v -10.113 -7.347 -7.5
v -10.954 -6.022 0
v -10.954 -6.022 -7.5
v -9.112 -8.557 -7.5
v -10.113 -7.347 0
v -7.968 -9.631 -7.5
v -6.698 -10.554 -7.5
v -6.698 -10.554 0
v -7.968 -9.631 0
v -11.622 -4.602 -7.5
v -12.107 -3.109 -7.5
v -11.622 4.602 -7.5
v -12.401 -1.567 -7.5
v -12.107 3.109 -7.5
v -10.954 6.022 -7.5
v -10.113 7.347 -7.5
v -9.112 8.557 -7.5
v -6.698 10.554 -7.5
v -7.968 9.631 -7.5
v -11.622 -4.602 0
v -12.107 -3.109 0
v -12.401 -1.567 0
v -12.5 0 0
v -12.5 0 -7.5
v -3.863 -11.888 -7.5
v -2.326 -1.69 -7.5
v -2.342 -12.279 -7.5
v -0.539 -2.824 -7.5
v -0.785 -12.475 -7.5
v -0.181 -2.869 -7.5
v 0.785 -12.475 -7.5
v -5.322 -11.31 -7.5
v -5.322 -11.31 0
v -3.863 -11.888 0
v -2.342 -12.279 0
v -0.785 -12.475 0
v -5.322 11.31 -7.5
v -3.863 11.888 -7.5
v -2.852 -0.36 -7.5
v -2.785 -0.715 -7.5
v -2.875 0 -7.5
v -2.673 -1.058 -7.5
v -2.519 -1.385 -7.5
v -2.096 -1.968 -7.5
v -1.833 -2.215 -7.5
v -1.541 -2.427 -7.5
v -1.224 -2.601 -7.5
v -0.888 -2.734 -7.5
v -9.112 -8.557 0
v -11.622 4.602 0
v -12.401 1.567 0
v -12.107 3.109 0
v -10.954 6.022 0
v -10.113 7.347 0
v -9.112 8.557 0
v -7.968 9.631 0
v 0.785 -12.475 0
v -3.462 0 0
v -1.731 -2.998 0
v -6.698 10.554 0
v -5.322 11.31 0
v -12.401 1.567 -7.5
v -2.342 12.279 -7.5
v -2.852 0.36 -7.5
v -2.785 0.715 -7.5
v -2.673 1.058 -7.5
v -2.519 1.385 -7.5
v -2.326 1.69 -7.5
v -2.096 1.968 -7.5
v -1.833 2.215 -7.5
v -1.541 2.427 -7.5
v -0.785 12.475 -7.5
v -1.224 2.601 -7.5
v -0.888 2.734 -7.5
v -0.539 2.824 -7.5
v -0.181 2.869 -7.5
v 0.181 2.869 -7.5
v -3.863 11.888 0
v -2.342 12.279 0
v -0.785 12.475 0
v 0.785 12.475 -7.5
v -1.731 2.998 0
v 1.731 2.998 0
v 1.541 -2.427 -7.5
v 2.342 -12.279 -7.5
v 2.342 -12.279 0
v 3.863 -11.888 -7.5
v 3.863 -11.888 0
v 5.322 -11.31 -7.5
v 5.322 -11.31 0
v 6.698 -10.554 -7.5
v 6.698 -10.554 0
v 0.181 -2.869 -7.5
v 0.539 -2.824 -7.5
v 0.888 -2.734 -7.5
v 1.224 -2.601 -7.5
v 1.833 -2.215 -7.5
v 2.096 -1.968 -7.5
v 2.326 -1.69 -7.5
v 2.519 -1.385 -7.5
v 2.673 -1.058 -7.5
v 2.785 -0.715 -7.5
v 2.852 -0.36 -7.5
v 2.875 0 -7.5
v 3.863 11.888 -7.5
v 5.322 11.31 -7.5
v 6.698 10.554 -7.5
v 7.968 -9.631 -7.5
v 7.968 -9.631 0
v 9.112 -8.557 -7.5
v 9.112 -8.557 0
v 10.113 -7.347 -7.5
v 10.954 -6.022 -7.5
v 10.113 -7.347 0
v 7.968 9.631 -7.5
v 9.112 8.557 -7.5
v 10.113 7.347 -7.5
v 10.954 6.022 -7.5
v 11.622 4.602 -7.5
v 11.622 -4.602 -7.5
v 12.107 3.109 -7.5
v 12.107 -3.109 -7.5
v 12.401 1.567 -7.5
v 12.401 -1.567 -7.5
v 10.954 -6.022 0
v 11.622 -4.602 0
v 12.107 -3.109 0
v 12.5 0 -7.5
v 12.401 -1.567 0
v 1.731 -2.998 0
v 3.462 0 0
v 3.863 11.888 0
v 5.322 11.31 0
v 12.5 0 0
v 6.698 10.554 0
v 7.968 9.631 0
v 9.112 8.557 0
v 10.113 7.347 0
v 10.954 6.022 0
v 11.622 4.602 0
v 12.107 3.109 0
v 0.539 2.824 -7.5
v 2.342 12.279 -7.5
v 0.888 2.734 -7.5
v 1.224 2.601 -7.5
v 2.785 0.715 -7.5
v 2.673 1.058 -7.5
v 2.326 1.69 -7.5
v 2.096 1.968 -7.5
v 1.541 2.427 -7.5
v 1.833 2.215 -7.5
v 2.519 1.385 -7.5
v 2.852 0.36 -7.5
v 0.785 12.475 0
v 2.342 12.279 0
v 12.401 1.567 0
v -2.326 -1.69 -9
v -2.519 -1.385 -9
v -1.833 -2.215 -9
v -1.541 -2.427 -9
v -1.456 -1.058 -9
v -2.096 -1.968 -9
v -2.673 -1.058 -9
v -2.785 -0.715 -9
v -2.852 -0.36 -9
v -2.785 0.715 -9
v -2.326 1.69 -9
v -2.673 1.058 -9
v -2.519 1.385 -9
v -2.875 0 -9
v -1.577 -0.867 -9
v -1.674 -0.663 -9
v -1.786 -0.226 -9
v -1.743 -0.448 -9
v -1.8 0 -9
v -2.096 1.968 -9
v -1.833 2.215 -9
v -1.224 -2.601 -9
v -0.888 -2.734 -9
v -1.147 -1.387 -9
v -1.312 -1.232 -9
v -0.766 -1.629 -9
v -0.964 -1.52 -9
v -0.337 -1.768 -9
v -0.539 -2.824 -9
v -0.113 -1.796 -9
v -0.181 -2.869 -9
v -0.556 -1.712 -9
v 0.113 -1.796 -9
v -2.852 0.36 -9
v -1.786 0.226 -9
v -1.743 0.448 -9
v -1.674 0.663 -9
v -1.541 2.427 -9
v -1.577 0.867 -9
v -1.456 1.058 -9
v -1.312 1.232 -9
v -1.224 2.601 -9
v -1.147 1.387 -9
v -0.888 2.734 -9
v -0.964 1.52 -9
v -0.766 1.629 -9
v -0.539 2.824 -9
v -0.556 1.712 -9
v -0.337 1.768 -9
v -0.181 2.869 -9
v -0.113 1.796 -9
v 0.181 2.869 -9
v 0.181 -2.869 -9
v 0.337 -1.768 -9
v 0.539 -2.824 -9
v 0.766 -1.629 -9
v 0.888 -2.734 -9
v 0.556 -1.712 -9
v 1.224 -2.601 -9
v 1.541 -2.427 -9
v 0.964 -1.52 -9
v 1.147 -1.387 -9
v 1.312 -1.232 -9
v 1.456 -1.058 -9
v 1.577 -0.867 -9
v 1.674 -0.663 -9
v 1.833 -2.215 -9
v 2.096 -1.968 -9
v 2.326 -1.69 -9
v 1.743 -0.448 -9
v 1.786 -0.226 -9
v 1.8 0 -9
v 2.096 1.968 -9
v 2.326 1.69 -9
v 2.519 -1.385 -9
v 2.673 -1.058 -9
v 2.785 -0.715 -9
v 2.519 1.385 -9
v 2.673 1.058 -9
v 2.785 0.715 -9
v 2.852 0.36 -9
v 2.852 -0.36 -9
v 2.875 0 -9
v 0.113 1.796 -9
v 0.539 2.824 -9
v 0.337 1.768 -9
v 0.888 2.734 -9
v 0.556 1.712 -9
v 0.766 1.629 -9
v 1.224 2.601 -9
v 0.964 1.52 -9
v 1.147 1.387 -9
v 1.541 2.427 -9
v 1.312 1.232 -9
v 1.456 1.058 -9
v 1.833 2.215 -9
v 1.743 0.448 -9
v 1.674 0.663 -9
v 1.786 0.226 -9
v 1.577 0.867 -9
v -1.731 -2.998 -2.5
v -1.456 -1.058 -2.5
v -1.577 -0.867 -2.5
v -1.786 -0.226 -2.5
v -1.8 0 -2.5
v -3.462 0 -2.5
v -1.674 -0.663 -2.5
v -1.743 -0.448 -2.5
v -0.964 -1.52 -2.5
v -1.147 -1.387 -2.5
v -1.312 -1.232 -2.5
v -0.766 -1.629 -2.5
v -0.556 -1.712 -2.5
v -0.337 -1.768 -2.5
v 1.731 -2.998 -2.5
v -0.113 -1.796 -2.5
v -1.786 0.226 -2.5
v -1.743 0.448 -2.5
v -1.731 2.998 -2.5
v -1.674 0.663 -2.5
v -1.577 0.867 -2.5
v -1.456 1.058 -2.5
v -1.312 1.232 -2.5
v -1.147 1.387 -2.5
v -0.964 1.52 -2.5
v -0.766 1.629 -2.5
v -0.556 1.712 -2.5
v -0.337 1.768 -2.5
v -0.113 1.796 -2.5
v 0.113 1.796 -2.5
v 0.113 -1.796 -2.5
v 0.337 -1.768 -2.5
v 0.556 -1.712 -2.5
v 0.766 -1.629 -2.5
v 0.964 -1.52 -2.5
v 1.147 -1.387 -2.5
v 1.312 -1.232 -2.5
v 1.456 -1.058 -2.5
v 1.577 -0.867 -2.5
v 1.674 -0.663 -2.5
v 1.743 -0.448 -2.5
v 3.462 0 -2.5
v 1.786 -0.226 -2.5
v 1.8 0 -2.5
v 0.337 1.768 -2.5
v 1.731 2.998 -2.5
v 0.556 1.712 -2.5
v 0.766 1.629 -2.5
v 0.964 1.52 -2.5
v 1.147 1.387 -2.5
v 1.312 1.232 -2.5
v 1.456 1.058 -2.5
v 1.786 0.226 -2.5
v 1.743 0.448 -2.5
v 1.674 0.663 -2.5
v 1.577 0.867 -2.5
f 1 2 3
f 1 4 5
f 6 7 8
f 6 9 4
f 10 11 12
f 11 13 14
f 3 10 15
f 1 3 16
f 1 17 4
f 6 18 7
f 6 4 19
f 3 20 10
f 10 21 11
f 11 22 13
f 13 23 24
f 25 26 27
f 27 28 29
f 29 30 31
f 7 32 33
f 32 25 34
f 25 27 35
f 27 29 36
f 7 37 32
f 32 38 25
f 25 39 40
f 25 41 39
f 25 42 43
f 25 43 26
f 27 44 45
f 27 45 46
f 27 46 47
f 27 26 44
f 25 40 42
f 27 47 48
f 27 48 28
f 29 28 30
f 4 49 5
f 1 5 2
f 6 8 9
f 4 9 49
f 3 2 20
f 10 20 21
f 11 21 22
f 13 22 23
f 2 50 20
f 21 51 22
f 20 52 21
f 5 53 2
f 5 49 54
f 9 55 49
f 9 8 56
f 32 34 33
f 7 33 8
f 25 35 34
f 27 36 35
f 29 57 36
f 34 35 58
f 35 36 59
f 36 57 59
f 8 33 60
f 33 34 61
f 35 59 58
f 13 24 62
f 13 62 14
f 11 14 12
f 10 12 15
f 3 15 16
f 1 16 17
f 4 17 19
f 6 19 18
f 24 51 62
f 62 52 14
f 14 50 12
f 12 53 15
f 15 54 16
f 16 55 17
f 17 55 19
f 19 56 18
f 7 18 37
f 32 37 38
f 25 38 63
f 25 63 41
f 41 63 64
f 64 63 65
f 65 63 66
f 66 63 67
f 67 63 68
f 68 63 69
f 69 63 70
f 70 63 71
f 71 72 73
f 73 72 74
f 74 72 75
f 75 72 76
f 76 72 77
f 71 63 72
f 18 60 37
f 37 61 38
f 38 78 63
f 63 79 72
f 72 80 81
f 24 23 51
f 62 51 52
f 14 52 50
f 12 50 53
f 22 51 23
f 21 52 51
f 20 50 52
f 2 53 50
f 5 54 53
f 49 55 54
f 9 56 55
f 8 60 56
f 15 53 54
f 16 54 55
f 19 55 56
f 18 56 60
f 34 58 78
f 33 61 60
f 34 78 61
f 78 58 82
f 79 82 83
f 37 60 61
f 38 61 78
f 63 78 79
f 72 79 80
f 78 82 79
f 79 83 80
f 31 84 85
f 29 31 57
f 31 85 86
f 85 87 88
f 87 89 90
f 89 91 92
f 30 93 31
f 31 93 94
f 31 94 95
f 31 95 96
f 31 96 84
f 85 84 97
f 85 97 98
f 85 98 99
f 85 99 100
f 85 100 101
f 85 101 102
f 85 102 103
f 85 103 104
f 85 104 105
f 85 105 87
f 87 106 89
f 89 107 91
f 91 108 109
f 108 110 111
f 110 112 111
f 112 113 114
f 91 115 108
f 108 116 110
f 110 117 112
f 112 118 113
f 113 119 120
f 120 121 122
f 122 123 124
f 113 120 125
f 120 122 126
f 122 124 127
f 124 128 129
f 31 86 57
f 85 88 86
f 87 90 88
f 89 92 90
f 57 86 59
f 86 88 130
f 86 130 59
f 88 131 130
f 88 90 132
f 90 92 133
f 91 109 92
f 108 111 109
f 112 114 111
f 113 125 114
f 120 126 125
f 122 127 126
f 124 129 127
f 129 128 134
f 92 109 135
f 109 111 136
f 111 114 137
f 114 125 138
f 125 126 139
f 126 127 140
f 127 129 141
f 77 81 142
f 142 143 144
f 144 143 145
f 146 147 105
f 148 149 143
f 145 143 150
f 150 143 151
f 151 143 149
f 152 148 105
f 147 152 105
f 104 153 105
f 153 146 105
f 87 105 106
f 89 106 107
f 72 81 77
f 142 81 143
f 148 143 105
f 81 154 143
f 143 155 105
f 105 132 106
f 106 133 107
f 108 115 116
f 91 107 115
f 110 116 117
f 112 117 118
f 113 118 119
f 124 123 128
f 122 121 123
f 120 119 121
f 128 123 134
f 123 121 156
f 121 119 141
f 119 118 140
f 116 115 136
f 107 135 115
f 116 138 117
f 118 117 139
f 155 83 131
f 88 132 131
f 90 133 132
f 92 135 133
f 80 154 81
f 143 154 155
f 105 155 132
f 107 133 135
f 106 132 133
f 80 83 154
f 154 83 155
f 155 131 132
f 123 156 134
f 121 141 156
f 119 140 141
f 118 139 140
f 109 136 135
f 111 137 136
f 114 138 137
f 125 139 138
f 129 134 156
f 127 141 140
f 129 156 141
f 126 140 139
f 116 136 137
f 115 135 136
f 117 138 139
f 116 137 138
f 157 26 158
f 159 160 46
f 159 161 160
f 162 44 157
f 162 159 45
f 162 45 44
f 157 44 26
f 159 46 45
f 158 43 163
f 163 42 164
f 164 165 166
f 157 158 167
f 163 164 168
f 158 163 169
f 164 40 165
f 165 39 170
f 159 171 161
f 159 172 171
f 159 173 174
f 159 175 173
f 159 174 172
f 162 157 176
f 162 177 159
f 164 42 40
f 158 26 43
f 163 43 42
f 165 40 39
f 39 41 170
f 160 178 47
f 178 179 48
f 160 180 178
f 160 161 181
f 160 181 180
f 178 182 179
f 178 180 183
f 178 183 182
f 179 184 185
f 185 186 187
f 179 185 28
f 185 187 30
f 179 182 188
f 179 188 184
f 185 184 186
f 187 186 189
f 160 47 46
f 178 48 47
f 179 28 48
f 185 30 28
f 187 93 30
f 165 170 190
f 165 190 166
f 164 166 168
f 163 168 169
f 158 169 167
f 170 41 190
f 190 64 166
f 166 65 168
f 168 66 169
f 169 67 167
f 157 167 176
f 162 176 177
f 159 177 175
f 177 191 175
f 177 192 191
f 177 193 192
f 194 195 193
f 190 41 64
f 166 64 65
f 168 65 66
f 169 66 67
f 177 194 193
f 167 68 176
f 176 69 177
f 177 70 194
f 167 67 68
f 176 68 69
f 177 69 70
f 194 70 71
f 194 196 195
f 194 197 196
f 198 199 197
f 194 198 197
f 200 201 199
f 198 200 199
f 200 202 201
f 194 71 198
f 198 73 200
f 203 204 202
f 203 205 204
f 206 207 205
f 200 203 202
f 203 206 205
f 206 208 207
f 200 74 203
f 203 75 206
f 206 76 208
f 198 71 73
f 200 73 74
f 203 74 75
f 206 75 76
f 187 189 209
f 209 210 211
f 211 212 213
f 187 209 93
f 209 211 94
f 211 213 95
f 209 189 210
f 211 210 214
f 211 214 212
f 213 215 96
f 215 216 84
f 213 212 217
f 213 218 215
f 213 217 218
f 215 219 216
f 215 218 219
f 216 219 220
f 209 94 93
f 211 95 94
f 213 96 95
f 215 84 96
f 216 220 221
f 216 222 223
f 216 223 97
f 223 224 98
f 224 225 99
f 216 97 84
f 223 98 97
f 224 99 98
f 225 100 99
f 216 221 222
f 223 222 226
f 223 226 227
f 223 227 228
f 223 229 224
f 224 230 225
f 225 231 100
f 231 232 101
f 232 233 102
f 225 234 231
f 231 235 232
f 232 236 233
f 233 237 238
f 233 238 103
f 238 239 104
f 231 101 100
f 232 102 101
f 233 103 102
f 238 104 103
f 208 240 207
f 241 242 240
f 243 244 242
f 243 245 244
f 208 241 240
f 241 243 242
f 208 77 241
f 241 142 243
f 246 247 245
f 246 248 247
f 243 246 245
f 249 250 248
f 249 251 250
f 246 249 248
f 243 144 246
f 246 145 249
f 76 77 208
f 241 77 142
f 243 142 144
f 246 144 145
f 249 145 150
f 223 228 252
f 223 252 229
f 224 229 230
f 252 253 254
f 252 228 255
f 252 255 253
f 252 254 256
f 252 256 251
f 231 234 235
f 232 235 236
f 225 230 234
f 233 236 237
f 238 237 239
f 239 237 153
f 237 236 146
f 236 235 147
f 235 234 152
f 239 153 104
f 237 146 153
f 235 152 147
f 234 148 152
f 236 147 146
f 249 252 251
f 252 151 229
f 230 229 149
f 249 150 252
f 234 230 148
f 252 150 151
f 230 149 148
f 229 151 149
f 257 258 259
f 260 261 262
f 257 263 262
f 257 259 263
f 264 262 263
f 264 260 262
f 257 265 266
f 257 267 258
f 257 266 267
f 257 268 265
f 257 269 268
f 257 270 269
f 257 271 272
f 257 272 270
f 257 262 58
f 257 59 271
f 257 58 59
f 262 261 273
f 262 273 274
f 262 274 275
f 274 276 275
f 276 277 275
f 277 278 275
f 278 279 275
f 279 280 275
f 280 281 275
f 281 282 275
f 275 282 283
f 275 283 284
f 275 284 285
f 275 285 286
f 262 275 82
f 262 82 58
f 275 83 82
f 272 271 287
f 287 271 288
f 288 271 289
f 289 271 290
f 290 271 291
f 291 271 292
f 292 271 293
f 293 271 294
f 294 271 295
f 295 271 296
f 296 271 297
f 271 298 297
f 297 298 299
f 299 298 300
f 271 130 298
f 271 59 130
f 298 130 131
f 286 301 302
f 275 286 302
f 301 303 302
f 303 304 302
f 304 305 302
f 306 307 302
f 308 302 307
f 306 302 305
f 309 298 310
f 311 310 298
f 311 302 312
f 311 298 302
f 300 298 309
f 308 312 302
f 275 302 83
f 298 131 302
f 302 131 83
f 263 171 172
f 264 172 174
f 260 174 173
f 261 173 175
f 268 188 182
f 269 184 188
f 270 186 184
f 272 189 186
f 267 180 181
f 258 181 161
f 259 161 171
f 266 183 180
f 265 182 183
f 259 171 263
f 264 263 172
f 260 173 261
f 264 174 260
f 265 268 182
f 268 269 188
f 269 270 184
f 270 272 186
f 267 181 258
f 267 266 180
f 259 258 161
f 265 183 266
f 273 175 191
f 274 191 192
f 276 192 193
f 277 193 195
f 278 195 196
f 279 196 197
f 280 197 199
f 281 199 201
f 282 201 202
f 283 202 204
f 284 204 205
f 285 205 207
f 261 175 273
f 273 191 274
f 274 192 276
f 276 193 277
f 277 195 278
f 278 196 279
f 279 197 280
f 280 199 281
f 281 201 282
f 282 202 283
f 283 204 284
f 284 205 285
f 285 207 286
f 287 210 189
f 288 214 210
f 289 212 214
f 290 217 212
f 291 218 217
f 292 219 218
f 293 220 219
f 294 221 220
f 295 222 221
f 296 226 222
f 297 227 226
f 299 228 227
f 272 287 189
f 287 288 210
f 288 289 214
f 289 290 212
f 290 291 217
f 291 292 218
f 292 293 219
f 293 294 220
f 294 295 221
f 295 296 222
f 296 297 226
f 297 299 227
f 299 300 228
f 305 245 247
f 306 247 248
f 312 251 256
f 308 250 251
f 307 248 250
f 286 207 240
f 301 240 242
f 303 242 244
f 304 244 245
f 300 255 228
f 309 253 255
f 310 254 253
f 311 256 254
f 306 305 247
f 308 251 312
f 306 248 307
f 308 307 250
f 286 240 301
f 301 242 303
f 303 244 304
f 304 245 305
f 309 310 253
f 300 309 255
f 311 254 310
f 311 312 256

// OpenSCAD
$fn = 50;


difference() {
	union() {
		translate(v = [0, 0, -7.5000000000]) {
			cylinder(h = 7.5000000000, r = 12.5000000000);
		}
		#translate(v = [0, 0, -9.0000000000]) {
			cylinder(h = 9, r = 2.8750000000);
		}
	}
	union() {
		translate(v = [0, 0, 0]) {
			rotate(a = [0, 0, 0]) {
				difference() {
					union() {
						translate(v = [0, 0, -2.5000000000]) {
							linear_extrude(height = 2.5000000000) {
								polygon(points = [[3.4620000000, 0.0000000000], [1.7310000000, 2.9981799479], [-1.7310000000, 2.9981799479], [-3.4620000000, 0.0000000000], [-1.7310000000, -2.9981799479], [1.7310000000, -2.9981799479]]);
							}
						}
					}
					union();
				}
			}
		}
		#translate(v = [0, 0, -100.0000000000]) {
			cylinder(h = 200, r = 1.8000000000);
		}
	}
}
